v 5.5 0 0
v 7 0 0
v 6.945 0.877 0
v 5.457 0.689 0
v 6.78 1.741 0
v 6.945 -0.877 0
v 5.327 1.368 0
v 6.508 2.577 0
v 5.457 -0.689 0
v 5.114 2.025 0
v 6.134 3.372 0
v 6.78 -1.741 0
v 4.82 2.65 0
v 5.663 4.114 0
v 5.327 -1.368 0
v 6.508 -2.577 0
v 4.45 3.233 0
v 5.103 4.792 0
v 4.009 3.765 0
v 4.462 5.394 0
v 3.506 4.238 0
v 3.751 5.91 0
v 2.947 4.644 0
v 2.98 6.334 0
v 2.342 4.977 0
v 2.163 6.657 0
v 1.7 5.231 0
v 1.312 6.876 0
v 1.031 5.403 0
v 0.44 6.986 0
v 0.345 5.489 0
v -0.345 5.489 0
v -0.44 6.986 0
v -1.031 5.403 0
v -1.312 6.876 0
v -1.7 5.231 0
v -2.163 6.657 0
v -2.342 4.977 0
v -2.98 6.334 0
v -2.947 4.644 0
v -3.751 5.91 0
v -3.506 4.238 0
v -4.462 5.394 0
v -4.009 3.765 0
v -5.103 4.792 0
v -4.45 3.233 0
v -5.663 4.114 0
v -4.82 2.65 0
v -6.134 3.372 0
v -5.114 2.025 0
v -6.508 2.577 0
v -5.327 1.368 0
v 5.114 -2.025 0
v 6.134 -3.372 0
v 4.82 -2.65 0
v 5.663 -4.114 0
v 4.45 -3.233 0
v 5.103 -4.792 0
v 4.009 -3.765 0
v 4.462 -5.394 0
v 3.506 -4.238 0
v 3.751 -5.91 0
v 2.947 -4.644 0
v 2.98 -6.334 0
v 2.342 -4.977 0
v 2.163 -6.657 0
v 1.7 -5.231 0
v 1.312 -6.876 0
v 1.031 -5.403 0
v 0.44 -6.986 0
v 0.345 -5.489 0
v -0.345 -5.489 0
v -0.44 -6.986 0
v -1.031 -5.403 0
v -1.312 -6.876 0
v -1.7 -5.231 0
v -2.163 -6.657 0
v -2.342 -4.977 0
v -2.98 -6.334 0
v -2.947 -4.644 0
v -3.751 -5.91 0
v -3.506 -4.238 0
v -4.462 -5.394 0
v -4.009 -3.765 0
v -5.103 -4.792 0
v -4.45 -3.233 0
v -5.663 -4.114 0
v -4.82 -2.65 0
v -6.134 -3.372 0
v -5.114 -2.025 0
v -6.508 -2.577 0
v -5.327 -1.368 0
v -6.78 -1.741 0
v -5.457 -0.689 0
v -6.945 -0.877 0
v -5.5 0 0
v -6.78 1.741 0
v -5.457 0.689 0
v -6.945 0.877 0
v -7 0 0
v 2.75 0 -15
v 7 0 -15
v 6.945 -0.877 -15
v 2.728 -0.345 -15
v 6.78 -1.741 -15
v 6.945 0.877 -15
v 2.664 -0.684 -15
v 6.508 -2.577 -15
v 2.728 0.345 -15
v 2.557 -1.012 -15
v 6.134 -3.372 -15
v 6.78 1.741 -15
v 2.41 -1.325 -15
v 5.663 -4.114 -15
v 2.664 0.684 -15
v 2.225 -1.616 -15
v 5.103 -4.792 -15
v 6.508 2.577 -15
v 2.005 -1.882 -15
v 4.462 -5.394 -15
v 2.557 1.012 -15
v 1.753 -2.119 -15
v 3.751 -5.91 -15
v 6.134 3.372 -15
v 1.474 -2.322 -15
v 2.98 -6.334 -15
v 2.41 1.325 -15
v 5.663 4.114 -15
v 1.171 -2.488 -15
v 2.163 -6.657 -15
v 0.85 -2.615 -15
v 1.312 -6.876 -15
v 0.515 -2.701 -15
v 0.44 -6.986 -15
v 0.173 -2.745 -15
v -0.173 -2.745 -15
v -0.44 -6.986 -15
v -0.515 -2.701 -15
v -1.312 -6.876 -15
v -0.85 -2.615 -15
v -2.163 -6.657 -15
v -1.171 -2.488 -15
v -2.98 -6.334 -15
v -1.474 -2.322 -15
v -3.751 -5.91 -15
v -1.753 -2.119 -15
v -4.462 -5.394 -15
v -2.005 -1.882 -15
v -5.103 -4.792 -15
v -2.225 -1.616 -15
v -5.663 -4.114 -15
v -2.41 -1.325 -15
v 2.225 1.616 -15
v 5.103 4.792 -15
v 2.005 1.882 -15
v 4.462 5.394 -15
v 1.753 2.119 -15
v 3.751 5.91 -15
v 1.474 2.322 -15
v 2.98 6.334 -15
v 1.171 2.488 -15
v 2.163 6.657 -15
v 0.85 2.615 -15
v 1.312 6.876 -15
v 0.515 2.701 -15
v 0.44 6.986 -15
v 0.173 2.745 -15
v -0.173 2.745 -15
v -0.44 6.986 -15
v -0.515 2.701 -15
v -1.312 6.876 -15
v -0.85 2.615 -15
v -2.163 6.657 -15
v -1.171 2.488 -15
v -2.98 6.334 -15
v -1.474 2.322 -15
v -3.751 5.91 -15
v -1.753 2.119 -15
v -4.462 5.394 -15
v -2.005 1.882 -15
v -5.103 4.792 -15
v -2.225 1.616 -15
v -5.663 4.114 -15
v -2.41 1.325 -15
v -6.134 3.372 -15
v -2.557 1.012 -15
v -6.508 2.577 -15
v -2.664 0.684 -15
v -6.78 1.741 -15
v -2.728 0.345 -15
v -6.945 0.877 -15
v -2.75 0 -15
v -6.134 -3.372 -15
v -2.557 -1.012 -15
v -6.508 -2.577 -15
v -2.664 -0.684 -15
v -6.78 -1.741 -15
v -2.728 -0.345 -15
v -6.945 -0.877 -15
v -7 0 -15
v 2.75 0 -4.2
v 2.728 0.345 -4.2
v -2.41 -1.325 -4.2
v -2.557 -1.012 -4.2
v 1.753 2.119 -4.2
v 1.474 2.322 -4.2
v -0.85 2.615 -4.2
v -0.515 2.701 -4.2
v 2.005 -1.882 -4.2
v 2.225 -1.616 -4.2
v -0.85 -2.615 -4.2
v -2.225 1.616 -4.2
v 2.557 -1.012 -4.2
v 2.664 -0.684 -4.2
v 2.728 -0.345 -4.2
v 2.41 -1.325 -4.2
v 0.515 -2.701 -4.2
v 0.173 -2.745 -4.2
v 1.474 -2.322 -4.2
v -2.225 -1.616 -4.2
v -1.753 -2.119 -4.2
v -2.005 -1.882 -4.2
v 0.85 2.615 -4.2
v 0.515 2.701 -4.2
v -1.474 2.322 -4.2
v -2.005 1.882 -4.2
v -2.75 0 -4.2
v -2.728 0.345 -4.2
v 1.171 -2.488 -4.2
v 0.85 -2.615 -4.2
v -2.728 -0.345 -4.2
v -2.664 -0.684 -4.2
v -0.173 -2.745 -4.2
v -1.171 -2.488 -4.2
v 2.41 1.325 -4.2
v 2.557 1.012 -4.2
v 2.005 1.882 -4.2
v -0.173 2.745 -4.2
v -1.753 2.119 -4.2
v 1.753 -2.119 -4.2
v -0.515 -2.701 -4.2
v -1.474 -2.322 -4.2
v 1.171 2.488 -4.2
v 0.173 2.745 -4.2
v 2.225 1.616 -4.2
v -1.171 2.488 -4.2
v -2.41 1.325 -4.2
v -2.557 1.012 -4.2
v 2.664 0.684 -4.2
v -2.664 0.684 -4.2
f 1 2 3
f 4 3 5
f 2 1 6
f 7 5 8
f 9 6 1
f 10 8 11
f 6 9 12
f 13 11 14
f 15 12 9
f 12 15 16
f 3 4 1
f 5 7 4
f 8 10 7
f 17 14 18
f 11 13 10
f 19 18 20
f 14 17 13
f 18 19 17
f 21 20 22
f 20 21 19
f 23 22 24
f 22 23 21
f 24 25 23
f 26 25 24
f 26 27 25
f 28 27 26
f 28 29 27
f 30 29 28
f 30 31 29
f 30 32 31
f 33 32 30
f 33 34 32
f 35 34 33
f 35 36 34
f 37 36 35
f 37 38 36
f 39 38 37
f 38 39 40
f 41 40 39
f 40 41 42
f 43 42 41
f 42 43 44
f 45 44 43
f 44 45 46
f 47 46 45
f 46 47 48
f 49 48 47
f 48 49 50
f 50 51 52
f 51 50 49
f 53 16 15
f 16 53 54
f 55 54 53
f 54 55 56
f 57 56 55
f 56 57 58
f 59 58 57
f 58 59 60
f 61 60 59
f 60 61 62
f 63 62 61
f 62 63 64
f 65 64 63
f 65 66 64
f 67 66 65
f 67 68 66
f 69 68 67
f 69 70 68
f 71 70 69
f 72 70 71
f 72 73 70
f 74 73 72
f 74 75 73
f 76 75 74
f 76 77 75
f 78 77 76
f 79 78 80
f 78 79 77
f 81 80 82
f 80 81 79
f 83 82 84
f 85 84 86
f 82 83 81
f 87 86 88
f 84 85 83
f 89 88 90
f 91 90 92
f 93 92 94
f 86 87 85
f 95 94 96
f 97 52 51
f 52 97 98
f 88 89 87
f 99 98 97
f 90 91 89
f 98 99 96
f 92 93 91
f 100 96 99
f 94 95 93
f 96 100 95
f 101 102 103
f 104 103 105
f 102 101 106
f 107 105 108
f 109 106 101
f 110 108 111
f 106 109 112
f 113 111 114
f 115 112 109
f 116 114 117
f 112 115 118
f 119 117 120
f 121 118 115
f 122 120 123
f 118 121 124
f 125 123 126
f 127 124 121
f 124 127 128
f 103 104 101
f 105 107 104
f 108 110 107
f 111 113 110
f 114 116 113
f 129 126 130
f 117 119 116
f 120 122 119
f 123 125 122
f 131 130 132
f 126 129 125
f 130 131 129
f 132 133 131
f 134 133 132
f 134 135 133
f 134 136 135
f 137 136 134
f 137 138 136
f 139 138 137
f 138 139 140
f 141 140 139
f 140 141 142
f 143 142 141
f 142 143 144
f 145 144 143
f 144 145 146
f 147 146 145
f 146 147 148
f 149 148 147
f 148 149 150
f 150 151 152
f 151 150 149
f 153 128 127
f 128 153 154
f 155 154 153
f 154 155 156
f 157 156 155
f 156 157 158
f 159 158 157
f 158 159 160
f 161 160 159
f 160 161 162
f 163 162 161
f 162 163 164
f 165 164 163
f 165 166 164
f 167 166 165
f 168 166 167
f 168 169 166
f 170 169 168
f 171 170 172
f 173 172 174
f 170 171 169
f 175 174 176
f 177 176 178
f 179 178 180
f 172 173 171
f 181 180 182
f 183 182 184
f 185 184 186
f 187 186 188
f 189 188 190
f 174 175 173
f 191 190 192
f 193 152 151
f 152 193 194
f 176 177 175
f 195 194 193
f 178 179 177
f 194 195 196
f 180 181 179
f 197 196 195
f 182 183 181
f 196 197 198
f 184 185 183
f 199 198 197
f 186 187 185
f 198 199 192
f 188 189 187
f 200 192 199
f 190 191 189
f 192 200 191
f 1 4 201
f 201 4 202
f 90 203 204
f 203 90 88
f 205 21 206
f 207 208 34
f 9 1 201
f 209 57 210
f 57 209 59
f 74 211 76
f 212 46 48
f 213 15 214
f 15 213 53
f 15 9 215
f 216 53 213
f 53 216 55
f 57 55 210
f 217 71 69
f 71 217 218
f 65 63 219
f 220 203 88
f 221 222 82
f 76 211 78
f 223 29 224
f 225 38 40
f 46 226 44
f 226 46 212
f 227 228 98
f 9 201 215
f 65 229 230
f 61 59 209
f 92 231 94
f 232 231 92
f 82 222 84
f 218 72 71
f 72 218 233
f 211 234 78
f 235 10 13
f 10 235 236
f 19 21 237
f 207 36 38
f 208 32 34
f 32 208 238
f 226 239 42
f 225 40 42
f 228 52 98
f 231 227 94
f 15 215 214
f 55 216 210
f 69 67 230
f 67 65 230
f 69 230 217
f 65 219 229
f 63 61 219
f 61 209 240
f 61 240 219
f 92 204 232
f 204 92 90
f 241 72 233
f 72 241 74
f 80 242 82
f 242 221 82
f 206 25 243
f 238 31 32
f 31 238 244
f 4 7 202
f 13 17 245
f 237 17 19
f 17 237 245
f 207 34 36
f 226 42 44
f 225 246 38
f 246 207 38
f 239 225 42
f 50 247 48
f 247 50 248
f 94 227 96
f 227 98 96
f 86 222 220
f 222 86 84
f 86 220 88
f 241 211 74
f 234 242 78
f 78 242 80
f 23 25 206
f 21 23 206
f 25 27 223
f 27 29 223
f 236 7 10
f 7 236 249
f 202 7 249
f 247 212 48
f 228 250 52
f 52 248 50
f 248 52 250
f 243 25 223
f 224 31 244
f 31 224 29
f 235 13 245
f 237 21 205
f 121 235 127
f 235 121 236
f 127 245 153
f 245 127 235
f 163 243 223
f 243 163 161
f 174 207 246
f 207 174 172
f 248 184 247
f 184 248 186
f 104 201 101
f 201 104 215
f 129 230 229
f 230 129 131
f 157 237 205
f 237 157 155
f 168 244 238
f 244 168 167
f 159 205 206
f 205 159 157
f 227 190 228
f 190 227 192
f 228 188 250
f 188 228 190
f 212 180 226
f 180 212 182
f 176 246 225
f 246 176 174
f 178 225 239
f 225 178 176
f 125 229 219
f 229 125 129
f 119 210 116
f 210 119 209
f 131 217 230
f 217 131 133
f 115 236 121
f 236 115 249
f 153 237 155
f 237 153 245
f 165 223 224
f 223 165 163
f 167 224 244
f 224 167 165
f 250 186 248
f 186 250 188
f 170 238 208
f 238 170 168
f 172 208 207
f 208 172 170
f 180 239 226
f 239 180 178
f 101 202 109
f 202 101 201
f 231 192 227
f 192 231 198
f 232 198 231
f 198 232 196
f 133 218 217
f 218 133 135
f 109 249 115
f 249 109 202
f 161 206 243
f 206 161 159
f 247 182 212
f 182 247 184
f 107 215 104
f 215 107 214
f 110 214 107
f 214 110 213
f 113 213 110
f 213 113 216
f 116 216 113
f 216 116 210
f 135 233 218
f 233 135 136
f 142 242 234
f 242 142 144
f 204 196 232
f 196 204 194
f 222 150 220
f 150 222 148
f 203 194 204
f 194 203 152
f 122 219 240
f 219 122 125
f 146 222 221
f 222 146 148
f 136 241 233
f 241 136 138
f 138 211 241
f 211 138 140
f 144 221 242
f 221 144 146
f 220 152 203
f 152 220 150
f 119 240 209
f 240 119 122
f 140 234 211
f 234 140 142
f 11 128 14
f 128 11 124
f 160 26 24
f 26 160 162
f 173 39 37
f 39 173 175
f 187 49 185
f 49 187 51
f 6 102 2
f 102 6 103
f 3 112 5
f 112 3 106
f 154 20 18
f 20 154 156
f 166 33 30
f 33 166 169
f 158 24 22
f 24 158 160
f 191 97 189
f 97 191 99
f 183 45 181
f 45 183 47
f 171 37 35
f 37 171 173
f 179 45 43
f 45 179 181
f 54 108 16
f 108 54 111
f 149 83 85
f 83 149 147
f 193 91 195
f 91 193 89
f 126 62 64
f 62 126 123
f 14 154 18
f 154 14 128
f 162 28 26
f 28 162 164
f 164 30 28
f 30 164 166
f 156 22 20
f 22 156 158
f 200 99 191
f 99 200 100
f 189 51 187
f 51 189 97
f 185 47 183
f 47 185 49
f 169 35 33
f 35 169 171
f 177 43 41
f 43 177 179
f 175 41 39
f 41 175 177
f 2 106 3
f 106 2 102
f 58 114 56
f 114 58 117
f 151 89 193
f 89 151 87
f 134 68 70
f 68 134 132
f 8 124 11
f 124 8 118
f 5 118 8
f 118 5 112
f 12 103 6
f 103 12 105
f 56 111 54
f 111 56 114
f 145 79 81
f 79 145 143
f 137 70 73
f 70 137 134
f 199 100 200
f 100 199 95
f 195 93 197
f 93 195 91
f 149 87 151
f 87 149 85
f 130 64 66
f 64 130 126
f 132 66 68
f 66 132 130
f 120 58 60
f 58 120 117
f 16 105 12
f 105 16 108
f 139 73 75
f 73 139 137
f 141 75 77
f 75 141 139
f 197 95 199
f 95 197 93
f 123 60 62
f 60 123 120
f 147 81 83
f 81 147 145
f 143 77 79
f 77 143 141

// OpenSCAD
$fn = 50;


difference() {
	union() {
		translate(v = [0, 0, -15.0000000000]) {
			cylinder(h = 15, r = 7.0000000000);
		}
		cylinder(h = 0, r = 13.0000000000);
	}
	union() {
		translate(v = [0, 0, 0]) {
			rotate(a = [0, 0, 0]) {
				difference() {
					union() {
						#translate(v = [0, 0, -15.0000000000]) {
							cylinder(h = 15, r = 2.2500000000);
						}
						#translate(v = [0, 0, -4.2000000000]) {
							cylinder(h = 4.2000000000, r = 7.0000000000, r1 = 2.7500000000, r2 = 5.5000000000);
						}
						#translate(v = [0, 0, -15.0000000000]) {
							cylinder(h = 15, r = 2.7500000000);
						}
						#translate(v = [0, 0, -15.0000000000]) {
							cylinder(h = 15, r = 2.2500000000);
						}
					}
					union();
				}
			}
		}
	}
}
